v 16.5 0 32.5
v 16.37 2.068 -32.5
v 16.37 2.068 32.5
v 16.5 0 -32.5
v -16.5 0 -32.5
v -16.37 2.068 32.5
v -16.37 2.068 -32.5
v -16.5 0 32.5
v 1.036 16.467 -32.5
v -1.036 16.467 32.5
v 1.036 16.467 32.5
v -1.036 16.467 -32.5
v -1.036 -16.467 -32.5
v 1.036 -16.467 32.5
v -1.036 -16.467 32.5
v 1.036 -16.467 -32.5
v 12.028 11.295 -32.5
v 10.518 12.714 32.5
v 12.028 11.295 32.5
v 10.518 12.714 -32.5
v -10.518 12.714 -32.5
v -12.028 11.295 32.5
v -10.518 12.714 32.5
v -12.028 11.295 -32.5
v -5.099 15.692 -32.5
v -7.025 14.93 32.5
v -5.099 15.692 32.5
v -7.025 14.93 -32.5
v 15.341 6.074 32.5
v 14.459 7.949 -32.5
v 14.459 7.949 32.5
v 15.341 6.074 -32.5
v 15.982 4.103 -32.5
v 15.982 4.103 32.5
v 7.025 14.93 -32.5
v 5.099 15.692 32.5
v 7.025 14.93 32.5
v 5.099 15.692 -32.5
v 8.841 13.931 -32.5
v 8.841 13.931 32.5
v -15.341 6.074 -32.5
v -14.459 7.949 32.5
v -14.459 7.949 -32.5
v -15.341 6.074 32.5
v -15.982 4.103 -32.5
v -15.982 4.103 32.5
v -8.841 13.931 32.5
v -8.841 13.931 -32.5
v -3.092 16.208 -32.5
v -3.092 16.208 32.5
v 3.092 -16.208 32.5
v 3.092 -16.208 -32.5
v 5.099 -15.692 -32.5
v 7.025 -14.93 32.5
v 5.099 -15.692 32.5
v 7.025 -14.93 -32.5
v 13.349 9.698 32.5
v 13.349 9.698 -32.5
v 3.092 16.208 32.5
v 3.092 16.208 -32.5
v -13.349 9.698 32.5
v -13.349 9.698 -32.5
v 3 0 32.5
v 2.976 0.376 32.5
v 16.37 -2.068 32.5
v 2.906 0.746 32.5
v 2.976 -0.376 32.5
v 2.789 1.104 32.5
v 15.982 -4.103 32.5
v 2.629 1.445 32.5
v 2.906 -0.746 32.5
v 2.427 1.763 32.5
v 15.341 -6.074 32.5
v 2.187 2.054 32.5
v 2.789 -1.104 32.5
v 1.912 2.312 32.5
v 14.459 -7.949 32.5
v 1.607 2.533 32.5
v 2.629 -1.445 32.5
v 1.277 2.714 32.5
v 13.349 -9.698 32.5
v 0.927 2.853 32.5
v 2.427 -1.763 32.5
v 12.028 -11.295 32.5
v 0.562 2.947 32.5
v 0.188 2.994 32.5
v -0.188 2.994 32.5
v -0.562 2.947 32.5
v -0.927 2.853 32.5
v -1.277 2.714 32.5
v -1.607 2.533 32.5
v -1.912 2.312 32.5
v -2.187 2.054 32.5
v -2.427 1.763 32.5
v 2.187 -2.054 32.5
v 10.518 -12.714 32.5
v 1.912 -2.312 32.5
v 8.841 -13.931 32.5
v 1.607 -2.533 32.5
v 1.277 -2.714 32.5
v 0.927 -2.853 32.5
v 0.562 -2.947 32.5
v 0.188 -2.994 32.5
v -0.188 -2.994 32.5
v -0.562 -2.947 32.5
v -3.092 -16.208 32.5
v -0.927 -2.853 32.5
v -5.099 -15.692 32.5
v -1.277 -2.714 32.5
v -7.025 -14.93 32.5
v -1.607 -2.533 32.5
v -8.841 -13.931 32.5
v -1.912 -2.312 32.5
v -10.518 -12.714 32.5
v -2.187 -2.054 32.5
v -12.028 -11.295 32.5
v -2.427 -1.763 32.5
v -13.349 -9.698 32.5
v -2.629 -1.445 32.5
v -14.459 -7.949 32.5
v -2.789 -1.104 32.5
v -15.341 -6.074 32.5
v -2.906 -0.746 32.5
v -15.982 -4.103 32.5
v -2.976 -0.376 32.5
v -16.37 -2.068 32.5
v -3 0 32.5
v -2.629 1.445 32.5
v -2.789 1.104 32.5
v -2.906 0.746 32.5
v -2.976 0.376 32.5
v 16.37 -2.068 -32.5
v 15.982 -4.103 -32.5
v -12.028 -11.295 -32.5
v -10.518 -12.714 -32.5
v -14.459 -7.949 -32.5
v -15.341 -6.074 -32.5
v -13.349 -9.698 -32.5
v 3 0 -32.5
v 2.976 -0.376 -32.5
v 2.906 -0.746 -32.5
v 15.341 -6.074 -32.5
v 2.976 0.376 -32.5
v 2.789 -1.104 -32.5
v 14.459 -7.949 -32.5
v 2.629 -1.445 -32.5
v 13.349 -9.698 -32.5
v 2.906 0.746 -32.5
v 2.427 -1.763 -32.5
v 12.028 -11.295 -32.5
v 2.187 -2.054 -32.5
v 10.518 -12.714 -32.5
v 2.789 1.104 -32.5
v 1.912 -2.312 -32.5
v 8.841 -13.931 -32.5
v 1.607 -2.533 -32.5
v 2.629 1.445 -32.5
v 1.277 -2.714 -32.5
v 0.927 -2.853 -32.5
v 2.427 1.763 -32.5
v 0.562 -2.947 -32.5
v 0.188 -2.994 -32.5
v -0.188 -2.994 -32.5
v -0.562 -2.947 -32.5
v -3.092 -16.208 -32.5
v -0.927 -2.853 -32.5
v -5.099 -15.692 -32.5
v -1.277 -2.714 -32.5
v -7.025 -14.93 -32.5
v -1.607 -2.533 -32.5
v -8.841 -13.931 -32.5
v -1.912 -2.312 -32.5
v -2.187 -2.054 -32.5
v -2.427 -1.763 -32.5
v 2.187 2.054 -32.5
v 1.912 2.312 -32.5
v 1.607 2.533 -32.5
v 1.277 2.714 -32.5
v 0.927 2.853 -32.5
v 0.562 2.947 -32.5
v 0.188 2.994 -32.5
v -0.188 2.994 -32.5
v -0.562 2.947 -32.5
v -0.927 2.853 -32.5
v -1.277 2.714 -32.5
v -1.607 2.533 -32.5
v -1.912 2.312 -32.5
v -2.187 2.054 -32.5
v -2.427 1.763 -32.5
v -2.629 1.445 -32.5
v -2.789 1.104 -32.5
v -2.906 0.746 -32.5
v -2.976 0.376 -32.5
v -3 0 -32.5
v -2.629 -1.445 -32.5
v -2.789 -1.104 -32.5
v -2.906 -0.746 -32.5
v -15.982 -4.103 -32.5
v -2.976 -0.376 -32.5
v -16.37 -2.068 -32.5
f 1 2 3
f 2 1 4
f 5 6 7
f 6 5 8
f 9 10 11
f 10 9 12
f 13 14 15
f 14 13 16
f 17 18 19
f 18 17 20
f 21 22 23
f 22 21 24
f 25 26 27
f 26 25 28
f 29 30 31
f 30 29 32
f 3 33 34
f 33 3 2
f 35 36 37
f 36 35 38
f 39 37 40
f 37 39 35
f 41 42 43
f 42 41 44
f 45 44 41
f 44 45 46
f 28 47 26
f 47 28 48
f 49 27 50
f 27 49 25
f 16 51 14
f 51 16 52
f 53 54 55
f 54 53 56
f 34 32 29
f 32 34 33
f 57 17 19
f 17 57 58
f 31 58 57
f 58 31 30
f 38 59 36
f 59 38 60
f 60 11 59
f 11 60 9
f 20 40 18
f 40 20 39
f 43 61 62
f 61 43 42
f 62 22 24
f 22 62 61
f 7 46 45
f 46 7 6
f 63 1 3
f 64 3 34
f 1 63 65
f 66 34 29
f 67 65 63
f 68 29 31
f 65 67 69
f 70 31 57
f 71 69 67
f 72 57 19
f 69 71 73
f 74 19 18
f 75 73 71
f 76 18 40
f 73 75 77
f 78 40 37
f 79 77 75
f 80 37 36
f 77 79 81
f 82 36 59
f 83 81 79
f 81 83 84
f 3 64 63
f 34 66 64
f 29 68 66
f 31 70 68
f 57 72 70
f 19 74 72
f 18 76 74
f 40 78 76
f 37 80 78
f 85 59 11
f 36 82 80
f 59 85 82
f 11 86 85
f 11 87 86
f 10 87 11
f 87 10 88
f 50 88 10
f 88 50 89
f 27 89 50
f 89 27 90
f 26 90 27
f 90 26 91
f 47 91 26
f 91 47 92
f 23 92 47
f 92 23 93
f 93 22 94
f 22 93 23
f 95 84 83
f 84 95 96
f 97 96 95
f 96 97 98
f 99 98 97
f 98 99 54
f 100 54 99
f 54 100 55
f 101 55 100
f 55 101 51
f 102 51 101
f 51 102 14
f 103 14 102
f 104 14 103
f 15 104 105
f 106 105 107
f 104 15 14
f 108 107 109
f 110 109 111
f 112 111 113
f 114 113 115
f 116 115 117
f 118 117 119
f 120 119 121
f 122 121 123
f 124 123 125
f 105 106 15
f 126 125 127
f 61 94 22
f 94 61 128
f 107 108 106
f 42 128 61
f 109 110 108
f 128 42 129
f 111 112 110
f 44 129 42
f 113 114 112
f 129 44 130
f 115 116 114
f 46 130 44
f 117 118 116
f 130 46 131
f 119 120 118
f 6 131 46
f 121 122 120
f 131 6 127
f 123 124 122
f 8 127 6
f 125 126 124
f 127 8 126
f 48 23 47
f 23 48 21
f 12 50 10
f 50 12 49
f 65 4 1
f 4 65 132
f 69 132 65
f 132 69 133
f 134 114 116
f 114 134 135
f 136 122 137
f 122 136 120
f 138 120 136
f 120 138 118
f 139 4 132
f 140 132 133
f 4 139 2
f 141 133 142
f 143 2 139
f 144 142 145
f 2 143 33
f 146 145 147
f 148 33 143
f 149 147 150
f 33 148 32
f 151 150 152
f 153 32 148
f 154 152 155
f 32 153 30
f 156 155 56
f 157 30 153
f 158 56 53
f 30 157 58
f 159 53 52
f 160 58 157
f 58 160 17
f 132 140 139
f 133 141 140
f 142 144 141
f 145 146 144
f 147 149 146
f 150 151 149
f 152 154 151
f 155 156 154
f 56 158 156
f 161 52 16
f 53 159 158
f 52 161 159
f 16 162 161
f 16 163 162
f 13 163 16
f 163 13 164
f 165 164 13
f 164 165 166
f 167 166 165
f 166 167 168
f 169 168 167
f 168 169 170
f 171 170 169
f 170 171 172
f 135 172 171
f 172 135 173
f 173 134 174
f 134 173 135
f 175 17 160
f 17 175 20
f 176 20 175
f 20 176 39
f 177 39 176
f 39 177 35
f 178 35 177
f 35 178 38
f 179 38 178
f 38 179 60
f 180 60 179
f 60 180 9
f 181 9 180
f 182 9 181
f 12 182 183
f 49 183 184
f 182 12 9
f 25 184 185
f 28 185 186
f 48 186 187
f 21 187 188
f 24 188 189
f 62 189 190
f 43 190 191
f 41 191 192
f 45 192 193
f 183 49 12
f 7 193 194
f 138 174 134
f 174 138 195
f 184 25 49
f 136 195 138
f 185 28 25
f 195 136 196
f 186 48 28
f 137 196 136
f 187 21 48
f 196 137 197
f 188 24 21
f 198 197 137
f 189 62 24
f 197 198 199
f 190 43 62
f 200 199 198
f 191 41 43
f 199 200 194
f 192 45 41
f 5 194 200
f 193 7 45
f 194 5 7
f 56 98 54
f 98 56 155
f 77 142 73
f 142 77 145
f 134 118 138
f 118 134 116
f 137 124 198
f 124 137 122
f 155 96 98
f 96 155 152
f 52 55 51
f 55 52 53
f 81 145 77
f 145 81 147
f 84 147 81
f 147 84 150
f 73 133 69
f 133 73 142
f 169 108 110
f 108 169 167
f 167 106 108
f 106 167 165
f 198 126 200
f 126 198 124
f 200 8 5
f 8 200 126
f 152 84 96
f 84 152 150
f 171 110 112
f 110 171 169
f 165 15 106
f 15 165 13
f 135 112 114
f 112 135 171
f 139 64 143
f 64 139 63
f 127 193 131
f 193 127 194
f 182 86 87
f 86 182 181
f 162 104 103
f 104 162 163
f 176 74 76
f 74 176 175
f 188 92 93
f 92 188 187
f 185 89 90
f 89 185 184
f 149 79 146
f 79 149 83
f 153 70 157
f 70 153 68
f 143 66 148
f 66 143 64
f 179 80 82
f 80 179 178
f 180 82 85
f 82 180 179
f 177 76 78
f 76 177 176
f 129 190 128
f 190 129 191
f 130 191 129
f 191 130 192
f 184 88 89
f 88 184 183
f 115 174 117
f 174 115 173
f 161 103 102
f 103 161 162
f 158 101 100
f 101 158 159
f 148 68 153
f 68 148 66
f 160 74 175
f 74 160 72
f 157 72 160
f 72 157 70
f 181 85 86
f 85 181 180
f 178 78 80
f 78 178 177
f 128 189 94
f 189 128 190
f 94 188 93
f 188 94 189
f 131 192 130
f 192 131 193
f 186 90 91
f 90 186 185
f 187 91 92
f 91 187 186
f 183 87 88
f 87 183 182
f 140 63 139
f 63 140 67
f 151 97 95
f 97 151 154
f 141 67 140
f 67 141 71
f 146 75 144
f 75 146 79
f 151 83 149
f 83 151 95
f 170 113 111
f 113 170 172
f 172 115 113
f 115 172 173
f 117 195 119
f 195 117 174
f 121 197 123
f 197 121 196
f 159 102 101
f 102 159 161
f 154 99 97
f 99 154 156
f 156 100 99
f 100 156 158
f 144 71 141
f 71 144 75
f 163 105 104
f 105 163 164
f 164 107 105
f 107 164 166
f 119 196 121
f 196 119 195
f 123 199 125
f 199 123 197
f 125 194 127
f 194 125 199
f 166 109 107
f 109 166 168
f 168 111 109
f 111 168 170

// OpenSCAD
$fn = 50;


difference() {
	union() {
		translate(v = [0, 0, -32.5000000000]) {
			cylinder(h = 65, r = 16.5000000000);
		}
	}
	union() {
		translate(v = [0, 0, -100.0000000000]) {
			cylinder(h = 200, r = 3);
		}
	}
}
